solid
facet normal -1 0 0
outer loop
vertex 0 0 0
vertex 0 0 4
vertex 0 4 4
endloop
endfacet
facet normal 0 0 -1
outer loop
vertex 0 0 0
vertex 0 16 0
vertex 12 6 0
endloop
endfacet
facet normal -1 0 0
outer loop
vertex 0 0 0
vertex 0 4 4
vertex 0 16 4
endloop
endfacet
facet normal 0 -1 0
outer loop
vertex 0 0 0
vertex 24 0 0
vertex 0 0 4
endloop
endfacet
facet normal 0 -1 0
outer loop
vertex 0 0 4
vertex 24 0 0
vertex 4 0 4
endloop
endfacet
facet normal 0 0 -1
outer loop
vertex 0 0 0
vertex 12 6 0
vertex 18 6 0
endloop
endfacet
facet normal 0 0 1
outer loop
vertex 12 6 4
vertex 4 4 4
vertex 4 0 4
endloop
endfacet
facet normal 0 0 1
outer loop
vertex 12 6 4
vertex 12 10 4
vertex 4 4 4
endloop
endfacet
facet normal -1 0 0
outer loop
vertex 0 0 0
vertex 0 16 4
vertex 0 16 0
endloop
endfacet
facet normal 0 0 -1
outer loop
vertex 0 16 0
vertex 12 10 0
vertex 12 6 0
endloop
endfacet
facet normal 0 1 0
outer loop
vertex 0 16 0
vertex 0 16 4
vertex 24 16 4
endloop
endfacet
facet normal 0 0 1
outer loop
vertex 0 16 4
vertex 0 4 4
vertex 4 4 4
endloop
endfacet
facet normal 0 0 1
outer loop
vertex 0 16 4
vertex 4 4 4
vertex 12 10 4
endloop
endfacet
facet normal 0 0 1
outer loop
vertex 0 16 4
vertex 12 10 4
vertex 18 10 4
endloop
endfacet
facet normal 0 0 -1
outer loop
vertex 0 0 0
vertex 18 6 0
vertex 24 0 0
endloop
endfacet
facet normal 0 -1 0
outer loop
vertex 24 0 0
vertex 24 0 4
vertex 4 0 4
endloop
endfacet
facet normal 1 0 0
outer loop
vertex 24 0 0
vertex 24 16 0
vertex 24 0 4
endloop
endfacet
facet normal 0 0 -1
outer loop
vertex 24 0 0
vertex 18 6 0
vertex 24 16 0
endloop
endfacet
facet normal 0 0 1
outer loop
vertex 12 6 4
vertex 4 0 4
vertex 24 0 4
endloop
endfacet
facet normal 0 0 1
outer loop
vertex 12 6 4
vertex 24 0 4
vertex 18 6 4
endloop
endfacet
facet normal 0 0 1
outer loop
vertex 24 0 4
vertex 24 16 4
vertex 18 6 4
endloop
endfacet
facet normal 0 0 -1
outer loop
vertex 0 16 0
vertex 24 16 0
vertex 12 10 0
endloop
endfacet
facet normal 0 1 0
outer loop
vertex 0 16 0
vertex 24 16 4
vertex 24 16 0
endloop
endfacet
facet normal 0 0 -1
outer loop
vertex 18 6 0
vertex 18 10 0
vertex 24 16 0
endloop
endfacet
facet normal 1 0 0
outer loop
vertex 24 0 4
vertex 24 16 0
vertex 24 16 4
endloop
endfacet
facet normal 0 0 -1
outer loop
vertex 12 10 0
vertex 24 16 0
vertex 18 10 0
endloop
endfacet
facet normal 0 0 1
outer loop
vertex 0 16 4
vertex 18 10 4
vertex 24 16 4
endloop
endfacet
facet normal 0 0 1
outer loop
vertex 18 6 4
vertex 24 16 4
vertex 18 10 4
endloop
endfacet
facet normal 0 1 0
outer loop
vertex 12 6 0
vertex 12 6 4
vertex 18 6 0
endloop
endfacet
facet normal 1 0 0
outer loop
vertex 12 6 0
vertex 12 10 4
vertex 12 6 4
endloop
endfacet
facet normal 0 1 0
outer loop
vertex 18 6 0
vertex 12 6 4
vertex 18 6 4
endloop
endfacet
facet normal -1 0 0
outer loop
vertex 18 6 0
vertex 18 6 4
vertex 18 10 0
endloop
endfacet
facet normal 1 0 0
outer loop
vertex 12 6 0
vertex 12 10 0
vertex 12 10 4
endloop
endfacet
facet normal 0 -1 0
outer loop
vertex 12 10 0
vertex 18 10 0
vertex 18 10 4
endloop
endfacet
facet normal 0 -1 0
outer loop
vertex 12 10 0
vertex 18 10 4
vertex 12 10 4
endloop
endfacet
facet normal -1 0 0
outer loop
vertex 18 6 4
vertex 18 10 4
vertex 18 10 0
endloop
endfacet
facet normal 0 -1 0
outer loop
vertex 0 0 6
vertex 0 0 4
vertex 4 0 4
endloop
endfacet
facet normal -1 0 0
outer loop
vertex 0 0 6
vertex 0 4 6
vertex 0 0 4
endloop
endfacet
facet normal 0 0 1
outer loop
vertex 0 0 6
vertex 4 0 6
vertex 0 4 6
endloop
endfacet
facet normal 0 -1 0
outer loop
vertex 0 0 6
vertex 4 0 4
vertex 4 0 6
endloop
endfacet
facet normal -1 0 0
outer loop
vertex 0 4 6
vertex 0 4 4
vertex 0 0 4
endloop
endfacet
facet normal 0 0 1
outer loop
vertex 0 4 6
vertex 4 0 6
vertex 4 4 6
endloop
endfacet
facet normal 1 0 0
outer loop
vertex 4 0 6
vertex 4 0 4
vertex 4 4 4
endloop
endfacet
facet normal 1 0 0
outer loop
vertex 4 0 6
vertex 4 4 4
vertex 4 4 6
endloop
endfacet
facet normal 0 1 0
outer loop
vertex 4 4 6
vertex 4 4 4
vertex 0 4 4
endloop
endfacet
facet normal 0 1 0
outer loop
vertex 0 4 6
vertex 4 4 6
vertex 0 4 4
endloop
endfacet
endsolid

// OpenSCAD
union() {
  difference() {
    cube([24, 16, 4]);
    translate([12, 6, -1]) cube([6, 4, 6]);
  }
  translate([0, 0, 4]) cube([4, 4, 2]);
}
